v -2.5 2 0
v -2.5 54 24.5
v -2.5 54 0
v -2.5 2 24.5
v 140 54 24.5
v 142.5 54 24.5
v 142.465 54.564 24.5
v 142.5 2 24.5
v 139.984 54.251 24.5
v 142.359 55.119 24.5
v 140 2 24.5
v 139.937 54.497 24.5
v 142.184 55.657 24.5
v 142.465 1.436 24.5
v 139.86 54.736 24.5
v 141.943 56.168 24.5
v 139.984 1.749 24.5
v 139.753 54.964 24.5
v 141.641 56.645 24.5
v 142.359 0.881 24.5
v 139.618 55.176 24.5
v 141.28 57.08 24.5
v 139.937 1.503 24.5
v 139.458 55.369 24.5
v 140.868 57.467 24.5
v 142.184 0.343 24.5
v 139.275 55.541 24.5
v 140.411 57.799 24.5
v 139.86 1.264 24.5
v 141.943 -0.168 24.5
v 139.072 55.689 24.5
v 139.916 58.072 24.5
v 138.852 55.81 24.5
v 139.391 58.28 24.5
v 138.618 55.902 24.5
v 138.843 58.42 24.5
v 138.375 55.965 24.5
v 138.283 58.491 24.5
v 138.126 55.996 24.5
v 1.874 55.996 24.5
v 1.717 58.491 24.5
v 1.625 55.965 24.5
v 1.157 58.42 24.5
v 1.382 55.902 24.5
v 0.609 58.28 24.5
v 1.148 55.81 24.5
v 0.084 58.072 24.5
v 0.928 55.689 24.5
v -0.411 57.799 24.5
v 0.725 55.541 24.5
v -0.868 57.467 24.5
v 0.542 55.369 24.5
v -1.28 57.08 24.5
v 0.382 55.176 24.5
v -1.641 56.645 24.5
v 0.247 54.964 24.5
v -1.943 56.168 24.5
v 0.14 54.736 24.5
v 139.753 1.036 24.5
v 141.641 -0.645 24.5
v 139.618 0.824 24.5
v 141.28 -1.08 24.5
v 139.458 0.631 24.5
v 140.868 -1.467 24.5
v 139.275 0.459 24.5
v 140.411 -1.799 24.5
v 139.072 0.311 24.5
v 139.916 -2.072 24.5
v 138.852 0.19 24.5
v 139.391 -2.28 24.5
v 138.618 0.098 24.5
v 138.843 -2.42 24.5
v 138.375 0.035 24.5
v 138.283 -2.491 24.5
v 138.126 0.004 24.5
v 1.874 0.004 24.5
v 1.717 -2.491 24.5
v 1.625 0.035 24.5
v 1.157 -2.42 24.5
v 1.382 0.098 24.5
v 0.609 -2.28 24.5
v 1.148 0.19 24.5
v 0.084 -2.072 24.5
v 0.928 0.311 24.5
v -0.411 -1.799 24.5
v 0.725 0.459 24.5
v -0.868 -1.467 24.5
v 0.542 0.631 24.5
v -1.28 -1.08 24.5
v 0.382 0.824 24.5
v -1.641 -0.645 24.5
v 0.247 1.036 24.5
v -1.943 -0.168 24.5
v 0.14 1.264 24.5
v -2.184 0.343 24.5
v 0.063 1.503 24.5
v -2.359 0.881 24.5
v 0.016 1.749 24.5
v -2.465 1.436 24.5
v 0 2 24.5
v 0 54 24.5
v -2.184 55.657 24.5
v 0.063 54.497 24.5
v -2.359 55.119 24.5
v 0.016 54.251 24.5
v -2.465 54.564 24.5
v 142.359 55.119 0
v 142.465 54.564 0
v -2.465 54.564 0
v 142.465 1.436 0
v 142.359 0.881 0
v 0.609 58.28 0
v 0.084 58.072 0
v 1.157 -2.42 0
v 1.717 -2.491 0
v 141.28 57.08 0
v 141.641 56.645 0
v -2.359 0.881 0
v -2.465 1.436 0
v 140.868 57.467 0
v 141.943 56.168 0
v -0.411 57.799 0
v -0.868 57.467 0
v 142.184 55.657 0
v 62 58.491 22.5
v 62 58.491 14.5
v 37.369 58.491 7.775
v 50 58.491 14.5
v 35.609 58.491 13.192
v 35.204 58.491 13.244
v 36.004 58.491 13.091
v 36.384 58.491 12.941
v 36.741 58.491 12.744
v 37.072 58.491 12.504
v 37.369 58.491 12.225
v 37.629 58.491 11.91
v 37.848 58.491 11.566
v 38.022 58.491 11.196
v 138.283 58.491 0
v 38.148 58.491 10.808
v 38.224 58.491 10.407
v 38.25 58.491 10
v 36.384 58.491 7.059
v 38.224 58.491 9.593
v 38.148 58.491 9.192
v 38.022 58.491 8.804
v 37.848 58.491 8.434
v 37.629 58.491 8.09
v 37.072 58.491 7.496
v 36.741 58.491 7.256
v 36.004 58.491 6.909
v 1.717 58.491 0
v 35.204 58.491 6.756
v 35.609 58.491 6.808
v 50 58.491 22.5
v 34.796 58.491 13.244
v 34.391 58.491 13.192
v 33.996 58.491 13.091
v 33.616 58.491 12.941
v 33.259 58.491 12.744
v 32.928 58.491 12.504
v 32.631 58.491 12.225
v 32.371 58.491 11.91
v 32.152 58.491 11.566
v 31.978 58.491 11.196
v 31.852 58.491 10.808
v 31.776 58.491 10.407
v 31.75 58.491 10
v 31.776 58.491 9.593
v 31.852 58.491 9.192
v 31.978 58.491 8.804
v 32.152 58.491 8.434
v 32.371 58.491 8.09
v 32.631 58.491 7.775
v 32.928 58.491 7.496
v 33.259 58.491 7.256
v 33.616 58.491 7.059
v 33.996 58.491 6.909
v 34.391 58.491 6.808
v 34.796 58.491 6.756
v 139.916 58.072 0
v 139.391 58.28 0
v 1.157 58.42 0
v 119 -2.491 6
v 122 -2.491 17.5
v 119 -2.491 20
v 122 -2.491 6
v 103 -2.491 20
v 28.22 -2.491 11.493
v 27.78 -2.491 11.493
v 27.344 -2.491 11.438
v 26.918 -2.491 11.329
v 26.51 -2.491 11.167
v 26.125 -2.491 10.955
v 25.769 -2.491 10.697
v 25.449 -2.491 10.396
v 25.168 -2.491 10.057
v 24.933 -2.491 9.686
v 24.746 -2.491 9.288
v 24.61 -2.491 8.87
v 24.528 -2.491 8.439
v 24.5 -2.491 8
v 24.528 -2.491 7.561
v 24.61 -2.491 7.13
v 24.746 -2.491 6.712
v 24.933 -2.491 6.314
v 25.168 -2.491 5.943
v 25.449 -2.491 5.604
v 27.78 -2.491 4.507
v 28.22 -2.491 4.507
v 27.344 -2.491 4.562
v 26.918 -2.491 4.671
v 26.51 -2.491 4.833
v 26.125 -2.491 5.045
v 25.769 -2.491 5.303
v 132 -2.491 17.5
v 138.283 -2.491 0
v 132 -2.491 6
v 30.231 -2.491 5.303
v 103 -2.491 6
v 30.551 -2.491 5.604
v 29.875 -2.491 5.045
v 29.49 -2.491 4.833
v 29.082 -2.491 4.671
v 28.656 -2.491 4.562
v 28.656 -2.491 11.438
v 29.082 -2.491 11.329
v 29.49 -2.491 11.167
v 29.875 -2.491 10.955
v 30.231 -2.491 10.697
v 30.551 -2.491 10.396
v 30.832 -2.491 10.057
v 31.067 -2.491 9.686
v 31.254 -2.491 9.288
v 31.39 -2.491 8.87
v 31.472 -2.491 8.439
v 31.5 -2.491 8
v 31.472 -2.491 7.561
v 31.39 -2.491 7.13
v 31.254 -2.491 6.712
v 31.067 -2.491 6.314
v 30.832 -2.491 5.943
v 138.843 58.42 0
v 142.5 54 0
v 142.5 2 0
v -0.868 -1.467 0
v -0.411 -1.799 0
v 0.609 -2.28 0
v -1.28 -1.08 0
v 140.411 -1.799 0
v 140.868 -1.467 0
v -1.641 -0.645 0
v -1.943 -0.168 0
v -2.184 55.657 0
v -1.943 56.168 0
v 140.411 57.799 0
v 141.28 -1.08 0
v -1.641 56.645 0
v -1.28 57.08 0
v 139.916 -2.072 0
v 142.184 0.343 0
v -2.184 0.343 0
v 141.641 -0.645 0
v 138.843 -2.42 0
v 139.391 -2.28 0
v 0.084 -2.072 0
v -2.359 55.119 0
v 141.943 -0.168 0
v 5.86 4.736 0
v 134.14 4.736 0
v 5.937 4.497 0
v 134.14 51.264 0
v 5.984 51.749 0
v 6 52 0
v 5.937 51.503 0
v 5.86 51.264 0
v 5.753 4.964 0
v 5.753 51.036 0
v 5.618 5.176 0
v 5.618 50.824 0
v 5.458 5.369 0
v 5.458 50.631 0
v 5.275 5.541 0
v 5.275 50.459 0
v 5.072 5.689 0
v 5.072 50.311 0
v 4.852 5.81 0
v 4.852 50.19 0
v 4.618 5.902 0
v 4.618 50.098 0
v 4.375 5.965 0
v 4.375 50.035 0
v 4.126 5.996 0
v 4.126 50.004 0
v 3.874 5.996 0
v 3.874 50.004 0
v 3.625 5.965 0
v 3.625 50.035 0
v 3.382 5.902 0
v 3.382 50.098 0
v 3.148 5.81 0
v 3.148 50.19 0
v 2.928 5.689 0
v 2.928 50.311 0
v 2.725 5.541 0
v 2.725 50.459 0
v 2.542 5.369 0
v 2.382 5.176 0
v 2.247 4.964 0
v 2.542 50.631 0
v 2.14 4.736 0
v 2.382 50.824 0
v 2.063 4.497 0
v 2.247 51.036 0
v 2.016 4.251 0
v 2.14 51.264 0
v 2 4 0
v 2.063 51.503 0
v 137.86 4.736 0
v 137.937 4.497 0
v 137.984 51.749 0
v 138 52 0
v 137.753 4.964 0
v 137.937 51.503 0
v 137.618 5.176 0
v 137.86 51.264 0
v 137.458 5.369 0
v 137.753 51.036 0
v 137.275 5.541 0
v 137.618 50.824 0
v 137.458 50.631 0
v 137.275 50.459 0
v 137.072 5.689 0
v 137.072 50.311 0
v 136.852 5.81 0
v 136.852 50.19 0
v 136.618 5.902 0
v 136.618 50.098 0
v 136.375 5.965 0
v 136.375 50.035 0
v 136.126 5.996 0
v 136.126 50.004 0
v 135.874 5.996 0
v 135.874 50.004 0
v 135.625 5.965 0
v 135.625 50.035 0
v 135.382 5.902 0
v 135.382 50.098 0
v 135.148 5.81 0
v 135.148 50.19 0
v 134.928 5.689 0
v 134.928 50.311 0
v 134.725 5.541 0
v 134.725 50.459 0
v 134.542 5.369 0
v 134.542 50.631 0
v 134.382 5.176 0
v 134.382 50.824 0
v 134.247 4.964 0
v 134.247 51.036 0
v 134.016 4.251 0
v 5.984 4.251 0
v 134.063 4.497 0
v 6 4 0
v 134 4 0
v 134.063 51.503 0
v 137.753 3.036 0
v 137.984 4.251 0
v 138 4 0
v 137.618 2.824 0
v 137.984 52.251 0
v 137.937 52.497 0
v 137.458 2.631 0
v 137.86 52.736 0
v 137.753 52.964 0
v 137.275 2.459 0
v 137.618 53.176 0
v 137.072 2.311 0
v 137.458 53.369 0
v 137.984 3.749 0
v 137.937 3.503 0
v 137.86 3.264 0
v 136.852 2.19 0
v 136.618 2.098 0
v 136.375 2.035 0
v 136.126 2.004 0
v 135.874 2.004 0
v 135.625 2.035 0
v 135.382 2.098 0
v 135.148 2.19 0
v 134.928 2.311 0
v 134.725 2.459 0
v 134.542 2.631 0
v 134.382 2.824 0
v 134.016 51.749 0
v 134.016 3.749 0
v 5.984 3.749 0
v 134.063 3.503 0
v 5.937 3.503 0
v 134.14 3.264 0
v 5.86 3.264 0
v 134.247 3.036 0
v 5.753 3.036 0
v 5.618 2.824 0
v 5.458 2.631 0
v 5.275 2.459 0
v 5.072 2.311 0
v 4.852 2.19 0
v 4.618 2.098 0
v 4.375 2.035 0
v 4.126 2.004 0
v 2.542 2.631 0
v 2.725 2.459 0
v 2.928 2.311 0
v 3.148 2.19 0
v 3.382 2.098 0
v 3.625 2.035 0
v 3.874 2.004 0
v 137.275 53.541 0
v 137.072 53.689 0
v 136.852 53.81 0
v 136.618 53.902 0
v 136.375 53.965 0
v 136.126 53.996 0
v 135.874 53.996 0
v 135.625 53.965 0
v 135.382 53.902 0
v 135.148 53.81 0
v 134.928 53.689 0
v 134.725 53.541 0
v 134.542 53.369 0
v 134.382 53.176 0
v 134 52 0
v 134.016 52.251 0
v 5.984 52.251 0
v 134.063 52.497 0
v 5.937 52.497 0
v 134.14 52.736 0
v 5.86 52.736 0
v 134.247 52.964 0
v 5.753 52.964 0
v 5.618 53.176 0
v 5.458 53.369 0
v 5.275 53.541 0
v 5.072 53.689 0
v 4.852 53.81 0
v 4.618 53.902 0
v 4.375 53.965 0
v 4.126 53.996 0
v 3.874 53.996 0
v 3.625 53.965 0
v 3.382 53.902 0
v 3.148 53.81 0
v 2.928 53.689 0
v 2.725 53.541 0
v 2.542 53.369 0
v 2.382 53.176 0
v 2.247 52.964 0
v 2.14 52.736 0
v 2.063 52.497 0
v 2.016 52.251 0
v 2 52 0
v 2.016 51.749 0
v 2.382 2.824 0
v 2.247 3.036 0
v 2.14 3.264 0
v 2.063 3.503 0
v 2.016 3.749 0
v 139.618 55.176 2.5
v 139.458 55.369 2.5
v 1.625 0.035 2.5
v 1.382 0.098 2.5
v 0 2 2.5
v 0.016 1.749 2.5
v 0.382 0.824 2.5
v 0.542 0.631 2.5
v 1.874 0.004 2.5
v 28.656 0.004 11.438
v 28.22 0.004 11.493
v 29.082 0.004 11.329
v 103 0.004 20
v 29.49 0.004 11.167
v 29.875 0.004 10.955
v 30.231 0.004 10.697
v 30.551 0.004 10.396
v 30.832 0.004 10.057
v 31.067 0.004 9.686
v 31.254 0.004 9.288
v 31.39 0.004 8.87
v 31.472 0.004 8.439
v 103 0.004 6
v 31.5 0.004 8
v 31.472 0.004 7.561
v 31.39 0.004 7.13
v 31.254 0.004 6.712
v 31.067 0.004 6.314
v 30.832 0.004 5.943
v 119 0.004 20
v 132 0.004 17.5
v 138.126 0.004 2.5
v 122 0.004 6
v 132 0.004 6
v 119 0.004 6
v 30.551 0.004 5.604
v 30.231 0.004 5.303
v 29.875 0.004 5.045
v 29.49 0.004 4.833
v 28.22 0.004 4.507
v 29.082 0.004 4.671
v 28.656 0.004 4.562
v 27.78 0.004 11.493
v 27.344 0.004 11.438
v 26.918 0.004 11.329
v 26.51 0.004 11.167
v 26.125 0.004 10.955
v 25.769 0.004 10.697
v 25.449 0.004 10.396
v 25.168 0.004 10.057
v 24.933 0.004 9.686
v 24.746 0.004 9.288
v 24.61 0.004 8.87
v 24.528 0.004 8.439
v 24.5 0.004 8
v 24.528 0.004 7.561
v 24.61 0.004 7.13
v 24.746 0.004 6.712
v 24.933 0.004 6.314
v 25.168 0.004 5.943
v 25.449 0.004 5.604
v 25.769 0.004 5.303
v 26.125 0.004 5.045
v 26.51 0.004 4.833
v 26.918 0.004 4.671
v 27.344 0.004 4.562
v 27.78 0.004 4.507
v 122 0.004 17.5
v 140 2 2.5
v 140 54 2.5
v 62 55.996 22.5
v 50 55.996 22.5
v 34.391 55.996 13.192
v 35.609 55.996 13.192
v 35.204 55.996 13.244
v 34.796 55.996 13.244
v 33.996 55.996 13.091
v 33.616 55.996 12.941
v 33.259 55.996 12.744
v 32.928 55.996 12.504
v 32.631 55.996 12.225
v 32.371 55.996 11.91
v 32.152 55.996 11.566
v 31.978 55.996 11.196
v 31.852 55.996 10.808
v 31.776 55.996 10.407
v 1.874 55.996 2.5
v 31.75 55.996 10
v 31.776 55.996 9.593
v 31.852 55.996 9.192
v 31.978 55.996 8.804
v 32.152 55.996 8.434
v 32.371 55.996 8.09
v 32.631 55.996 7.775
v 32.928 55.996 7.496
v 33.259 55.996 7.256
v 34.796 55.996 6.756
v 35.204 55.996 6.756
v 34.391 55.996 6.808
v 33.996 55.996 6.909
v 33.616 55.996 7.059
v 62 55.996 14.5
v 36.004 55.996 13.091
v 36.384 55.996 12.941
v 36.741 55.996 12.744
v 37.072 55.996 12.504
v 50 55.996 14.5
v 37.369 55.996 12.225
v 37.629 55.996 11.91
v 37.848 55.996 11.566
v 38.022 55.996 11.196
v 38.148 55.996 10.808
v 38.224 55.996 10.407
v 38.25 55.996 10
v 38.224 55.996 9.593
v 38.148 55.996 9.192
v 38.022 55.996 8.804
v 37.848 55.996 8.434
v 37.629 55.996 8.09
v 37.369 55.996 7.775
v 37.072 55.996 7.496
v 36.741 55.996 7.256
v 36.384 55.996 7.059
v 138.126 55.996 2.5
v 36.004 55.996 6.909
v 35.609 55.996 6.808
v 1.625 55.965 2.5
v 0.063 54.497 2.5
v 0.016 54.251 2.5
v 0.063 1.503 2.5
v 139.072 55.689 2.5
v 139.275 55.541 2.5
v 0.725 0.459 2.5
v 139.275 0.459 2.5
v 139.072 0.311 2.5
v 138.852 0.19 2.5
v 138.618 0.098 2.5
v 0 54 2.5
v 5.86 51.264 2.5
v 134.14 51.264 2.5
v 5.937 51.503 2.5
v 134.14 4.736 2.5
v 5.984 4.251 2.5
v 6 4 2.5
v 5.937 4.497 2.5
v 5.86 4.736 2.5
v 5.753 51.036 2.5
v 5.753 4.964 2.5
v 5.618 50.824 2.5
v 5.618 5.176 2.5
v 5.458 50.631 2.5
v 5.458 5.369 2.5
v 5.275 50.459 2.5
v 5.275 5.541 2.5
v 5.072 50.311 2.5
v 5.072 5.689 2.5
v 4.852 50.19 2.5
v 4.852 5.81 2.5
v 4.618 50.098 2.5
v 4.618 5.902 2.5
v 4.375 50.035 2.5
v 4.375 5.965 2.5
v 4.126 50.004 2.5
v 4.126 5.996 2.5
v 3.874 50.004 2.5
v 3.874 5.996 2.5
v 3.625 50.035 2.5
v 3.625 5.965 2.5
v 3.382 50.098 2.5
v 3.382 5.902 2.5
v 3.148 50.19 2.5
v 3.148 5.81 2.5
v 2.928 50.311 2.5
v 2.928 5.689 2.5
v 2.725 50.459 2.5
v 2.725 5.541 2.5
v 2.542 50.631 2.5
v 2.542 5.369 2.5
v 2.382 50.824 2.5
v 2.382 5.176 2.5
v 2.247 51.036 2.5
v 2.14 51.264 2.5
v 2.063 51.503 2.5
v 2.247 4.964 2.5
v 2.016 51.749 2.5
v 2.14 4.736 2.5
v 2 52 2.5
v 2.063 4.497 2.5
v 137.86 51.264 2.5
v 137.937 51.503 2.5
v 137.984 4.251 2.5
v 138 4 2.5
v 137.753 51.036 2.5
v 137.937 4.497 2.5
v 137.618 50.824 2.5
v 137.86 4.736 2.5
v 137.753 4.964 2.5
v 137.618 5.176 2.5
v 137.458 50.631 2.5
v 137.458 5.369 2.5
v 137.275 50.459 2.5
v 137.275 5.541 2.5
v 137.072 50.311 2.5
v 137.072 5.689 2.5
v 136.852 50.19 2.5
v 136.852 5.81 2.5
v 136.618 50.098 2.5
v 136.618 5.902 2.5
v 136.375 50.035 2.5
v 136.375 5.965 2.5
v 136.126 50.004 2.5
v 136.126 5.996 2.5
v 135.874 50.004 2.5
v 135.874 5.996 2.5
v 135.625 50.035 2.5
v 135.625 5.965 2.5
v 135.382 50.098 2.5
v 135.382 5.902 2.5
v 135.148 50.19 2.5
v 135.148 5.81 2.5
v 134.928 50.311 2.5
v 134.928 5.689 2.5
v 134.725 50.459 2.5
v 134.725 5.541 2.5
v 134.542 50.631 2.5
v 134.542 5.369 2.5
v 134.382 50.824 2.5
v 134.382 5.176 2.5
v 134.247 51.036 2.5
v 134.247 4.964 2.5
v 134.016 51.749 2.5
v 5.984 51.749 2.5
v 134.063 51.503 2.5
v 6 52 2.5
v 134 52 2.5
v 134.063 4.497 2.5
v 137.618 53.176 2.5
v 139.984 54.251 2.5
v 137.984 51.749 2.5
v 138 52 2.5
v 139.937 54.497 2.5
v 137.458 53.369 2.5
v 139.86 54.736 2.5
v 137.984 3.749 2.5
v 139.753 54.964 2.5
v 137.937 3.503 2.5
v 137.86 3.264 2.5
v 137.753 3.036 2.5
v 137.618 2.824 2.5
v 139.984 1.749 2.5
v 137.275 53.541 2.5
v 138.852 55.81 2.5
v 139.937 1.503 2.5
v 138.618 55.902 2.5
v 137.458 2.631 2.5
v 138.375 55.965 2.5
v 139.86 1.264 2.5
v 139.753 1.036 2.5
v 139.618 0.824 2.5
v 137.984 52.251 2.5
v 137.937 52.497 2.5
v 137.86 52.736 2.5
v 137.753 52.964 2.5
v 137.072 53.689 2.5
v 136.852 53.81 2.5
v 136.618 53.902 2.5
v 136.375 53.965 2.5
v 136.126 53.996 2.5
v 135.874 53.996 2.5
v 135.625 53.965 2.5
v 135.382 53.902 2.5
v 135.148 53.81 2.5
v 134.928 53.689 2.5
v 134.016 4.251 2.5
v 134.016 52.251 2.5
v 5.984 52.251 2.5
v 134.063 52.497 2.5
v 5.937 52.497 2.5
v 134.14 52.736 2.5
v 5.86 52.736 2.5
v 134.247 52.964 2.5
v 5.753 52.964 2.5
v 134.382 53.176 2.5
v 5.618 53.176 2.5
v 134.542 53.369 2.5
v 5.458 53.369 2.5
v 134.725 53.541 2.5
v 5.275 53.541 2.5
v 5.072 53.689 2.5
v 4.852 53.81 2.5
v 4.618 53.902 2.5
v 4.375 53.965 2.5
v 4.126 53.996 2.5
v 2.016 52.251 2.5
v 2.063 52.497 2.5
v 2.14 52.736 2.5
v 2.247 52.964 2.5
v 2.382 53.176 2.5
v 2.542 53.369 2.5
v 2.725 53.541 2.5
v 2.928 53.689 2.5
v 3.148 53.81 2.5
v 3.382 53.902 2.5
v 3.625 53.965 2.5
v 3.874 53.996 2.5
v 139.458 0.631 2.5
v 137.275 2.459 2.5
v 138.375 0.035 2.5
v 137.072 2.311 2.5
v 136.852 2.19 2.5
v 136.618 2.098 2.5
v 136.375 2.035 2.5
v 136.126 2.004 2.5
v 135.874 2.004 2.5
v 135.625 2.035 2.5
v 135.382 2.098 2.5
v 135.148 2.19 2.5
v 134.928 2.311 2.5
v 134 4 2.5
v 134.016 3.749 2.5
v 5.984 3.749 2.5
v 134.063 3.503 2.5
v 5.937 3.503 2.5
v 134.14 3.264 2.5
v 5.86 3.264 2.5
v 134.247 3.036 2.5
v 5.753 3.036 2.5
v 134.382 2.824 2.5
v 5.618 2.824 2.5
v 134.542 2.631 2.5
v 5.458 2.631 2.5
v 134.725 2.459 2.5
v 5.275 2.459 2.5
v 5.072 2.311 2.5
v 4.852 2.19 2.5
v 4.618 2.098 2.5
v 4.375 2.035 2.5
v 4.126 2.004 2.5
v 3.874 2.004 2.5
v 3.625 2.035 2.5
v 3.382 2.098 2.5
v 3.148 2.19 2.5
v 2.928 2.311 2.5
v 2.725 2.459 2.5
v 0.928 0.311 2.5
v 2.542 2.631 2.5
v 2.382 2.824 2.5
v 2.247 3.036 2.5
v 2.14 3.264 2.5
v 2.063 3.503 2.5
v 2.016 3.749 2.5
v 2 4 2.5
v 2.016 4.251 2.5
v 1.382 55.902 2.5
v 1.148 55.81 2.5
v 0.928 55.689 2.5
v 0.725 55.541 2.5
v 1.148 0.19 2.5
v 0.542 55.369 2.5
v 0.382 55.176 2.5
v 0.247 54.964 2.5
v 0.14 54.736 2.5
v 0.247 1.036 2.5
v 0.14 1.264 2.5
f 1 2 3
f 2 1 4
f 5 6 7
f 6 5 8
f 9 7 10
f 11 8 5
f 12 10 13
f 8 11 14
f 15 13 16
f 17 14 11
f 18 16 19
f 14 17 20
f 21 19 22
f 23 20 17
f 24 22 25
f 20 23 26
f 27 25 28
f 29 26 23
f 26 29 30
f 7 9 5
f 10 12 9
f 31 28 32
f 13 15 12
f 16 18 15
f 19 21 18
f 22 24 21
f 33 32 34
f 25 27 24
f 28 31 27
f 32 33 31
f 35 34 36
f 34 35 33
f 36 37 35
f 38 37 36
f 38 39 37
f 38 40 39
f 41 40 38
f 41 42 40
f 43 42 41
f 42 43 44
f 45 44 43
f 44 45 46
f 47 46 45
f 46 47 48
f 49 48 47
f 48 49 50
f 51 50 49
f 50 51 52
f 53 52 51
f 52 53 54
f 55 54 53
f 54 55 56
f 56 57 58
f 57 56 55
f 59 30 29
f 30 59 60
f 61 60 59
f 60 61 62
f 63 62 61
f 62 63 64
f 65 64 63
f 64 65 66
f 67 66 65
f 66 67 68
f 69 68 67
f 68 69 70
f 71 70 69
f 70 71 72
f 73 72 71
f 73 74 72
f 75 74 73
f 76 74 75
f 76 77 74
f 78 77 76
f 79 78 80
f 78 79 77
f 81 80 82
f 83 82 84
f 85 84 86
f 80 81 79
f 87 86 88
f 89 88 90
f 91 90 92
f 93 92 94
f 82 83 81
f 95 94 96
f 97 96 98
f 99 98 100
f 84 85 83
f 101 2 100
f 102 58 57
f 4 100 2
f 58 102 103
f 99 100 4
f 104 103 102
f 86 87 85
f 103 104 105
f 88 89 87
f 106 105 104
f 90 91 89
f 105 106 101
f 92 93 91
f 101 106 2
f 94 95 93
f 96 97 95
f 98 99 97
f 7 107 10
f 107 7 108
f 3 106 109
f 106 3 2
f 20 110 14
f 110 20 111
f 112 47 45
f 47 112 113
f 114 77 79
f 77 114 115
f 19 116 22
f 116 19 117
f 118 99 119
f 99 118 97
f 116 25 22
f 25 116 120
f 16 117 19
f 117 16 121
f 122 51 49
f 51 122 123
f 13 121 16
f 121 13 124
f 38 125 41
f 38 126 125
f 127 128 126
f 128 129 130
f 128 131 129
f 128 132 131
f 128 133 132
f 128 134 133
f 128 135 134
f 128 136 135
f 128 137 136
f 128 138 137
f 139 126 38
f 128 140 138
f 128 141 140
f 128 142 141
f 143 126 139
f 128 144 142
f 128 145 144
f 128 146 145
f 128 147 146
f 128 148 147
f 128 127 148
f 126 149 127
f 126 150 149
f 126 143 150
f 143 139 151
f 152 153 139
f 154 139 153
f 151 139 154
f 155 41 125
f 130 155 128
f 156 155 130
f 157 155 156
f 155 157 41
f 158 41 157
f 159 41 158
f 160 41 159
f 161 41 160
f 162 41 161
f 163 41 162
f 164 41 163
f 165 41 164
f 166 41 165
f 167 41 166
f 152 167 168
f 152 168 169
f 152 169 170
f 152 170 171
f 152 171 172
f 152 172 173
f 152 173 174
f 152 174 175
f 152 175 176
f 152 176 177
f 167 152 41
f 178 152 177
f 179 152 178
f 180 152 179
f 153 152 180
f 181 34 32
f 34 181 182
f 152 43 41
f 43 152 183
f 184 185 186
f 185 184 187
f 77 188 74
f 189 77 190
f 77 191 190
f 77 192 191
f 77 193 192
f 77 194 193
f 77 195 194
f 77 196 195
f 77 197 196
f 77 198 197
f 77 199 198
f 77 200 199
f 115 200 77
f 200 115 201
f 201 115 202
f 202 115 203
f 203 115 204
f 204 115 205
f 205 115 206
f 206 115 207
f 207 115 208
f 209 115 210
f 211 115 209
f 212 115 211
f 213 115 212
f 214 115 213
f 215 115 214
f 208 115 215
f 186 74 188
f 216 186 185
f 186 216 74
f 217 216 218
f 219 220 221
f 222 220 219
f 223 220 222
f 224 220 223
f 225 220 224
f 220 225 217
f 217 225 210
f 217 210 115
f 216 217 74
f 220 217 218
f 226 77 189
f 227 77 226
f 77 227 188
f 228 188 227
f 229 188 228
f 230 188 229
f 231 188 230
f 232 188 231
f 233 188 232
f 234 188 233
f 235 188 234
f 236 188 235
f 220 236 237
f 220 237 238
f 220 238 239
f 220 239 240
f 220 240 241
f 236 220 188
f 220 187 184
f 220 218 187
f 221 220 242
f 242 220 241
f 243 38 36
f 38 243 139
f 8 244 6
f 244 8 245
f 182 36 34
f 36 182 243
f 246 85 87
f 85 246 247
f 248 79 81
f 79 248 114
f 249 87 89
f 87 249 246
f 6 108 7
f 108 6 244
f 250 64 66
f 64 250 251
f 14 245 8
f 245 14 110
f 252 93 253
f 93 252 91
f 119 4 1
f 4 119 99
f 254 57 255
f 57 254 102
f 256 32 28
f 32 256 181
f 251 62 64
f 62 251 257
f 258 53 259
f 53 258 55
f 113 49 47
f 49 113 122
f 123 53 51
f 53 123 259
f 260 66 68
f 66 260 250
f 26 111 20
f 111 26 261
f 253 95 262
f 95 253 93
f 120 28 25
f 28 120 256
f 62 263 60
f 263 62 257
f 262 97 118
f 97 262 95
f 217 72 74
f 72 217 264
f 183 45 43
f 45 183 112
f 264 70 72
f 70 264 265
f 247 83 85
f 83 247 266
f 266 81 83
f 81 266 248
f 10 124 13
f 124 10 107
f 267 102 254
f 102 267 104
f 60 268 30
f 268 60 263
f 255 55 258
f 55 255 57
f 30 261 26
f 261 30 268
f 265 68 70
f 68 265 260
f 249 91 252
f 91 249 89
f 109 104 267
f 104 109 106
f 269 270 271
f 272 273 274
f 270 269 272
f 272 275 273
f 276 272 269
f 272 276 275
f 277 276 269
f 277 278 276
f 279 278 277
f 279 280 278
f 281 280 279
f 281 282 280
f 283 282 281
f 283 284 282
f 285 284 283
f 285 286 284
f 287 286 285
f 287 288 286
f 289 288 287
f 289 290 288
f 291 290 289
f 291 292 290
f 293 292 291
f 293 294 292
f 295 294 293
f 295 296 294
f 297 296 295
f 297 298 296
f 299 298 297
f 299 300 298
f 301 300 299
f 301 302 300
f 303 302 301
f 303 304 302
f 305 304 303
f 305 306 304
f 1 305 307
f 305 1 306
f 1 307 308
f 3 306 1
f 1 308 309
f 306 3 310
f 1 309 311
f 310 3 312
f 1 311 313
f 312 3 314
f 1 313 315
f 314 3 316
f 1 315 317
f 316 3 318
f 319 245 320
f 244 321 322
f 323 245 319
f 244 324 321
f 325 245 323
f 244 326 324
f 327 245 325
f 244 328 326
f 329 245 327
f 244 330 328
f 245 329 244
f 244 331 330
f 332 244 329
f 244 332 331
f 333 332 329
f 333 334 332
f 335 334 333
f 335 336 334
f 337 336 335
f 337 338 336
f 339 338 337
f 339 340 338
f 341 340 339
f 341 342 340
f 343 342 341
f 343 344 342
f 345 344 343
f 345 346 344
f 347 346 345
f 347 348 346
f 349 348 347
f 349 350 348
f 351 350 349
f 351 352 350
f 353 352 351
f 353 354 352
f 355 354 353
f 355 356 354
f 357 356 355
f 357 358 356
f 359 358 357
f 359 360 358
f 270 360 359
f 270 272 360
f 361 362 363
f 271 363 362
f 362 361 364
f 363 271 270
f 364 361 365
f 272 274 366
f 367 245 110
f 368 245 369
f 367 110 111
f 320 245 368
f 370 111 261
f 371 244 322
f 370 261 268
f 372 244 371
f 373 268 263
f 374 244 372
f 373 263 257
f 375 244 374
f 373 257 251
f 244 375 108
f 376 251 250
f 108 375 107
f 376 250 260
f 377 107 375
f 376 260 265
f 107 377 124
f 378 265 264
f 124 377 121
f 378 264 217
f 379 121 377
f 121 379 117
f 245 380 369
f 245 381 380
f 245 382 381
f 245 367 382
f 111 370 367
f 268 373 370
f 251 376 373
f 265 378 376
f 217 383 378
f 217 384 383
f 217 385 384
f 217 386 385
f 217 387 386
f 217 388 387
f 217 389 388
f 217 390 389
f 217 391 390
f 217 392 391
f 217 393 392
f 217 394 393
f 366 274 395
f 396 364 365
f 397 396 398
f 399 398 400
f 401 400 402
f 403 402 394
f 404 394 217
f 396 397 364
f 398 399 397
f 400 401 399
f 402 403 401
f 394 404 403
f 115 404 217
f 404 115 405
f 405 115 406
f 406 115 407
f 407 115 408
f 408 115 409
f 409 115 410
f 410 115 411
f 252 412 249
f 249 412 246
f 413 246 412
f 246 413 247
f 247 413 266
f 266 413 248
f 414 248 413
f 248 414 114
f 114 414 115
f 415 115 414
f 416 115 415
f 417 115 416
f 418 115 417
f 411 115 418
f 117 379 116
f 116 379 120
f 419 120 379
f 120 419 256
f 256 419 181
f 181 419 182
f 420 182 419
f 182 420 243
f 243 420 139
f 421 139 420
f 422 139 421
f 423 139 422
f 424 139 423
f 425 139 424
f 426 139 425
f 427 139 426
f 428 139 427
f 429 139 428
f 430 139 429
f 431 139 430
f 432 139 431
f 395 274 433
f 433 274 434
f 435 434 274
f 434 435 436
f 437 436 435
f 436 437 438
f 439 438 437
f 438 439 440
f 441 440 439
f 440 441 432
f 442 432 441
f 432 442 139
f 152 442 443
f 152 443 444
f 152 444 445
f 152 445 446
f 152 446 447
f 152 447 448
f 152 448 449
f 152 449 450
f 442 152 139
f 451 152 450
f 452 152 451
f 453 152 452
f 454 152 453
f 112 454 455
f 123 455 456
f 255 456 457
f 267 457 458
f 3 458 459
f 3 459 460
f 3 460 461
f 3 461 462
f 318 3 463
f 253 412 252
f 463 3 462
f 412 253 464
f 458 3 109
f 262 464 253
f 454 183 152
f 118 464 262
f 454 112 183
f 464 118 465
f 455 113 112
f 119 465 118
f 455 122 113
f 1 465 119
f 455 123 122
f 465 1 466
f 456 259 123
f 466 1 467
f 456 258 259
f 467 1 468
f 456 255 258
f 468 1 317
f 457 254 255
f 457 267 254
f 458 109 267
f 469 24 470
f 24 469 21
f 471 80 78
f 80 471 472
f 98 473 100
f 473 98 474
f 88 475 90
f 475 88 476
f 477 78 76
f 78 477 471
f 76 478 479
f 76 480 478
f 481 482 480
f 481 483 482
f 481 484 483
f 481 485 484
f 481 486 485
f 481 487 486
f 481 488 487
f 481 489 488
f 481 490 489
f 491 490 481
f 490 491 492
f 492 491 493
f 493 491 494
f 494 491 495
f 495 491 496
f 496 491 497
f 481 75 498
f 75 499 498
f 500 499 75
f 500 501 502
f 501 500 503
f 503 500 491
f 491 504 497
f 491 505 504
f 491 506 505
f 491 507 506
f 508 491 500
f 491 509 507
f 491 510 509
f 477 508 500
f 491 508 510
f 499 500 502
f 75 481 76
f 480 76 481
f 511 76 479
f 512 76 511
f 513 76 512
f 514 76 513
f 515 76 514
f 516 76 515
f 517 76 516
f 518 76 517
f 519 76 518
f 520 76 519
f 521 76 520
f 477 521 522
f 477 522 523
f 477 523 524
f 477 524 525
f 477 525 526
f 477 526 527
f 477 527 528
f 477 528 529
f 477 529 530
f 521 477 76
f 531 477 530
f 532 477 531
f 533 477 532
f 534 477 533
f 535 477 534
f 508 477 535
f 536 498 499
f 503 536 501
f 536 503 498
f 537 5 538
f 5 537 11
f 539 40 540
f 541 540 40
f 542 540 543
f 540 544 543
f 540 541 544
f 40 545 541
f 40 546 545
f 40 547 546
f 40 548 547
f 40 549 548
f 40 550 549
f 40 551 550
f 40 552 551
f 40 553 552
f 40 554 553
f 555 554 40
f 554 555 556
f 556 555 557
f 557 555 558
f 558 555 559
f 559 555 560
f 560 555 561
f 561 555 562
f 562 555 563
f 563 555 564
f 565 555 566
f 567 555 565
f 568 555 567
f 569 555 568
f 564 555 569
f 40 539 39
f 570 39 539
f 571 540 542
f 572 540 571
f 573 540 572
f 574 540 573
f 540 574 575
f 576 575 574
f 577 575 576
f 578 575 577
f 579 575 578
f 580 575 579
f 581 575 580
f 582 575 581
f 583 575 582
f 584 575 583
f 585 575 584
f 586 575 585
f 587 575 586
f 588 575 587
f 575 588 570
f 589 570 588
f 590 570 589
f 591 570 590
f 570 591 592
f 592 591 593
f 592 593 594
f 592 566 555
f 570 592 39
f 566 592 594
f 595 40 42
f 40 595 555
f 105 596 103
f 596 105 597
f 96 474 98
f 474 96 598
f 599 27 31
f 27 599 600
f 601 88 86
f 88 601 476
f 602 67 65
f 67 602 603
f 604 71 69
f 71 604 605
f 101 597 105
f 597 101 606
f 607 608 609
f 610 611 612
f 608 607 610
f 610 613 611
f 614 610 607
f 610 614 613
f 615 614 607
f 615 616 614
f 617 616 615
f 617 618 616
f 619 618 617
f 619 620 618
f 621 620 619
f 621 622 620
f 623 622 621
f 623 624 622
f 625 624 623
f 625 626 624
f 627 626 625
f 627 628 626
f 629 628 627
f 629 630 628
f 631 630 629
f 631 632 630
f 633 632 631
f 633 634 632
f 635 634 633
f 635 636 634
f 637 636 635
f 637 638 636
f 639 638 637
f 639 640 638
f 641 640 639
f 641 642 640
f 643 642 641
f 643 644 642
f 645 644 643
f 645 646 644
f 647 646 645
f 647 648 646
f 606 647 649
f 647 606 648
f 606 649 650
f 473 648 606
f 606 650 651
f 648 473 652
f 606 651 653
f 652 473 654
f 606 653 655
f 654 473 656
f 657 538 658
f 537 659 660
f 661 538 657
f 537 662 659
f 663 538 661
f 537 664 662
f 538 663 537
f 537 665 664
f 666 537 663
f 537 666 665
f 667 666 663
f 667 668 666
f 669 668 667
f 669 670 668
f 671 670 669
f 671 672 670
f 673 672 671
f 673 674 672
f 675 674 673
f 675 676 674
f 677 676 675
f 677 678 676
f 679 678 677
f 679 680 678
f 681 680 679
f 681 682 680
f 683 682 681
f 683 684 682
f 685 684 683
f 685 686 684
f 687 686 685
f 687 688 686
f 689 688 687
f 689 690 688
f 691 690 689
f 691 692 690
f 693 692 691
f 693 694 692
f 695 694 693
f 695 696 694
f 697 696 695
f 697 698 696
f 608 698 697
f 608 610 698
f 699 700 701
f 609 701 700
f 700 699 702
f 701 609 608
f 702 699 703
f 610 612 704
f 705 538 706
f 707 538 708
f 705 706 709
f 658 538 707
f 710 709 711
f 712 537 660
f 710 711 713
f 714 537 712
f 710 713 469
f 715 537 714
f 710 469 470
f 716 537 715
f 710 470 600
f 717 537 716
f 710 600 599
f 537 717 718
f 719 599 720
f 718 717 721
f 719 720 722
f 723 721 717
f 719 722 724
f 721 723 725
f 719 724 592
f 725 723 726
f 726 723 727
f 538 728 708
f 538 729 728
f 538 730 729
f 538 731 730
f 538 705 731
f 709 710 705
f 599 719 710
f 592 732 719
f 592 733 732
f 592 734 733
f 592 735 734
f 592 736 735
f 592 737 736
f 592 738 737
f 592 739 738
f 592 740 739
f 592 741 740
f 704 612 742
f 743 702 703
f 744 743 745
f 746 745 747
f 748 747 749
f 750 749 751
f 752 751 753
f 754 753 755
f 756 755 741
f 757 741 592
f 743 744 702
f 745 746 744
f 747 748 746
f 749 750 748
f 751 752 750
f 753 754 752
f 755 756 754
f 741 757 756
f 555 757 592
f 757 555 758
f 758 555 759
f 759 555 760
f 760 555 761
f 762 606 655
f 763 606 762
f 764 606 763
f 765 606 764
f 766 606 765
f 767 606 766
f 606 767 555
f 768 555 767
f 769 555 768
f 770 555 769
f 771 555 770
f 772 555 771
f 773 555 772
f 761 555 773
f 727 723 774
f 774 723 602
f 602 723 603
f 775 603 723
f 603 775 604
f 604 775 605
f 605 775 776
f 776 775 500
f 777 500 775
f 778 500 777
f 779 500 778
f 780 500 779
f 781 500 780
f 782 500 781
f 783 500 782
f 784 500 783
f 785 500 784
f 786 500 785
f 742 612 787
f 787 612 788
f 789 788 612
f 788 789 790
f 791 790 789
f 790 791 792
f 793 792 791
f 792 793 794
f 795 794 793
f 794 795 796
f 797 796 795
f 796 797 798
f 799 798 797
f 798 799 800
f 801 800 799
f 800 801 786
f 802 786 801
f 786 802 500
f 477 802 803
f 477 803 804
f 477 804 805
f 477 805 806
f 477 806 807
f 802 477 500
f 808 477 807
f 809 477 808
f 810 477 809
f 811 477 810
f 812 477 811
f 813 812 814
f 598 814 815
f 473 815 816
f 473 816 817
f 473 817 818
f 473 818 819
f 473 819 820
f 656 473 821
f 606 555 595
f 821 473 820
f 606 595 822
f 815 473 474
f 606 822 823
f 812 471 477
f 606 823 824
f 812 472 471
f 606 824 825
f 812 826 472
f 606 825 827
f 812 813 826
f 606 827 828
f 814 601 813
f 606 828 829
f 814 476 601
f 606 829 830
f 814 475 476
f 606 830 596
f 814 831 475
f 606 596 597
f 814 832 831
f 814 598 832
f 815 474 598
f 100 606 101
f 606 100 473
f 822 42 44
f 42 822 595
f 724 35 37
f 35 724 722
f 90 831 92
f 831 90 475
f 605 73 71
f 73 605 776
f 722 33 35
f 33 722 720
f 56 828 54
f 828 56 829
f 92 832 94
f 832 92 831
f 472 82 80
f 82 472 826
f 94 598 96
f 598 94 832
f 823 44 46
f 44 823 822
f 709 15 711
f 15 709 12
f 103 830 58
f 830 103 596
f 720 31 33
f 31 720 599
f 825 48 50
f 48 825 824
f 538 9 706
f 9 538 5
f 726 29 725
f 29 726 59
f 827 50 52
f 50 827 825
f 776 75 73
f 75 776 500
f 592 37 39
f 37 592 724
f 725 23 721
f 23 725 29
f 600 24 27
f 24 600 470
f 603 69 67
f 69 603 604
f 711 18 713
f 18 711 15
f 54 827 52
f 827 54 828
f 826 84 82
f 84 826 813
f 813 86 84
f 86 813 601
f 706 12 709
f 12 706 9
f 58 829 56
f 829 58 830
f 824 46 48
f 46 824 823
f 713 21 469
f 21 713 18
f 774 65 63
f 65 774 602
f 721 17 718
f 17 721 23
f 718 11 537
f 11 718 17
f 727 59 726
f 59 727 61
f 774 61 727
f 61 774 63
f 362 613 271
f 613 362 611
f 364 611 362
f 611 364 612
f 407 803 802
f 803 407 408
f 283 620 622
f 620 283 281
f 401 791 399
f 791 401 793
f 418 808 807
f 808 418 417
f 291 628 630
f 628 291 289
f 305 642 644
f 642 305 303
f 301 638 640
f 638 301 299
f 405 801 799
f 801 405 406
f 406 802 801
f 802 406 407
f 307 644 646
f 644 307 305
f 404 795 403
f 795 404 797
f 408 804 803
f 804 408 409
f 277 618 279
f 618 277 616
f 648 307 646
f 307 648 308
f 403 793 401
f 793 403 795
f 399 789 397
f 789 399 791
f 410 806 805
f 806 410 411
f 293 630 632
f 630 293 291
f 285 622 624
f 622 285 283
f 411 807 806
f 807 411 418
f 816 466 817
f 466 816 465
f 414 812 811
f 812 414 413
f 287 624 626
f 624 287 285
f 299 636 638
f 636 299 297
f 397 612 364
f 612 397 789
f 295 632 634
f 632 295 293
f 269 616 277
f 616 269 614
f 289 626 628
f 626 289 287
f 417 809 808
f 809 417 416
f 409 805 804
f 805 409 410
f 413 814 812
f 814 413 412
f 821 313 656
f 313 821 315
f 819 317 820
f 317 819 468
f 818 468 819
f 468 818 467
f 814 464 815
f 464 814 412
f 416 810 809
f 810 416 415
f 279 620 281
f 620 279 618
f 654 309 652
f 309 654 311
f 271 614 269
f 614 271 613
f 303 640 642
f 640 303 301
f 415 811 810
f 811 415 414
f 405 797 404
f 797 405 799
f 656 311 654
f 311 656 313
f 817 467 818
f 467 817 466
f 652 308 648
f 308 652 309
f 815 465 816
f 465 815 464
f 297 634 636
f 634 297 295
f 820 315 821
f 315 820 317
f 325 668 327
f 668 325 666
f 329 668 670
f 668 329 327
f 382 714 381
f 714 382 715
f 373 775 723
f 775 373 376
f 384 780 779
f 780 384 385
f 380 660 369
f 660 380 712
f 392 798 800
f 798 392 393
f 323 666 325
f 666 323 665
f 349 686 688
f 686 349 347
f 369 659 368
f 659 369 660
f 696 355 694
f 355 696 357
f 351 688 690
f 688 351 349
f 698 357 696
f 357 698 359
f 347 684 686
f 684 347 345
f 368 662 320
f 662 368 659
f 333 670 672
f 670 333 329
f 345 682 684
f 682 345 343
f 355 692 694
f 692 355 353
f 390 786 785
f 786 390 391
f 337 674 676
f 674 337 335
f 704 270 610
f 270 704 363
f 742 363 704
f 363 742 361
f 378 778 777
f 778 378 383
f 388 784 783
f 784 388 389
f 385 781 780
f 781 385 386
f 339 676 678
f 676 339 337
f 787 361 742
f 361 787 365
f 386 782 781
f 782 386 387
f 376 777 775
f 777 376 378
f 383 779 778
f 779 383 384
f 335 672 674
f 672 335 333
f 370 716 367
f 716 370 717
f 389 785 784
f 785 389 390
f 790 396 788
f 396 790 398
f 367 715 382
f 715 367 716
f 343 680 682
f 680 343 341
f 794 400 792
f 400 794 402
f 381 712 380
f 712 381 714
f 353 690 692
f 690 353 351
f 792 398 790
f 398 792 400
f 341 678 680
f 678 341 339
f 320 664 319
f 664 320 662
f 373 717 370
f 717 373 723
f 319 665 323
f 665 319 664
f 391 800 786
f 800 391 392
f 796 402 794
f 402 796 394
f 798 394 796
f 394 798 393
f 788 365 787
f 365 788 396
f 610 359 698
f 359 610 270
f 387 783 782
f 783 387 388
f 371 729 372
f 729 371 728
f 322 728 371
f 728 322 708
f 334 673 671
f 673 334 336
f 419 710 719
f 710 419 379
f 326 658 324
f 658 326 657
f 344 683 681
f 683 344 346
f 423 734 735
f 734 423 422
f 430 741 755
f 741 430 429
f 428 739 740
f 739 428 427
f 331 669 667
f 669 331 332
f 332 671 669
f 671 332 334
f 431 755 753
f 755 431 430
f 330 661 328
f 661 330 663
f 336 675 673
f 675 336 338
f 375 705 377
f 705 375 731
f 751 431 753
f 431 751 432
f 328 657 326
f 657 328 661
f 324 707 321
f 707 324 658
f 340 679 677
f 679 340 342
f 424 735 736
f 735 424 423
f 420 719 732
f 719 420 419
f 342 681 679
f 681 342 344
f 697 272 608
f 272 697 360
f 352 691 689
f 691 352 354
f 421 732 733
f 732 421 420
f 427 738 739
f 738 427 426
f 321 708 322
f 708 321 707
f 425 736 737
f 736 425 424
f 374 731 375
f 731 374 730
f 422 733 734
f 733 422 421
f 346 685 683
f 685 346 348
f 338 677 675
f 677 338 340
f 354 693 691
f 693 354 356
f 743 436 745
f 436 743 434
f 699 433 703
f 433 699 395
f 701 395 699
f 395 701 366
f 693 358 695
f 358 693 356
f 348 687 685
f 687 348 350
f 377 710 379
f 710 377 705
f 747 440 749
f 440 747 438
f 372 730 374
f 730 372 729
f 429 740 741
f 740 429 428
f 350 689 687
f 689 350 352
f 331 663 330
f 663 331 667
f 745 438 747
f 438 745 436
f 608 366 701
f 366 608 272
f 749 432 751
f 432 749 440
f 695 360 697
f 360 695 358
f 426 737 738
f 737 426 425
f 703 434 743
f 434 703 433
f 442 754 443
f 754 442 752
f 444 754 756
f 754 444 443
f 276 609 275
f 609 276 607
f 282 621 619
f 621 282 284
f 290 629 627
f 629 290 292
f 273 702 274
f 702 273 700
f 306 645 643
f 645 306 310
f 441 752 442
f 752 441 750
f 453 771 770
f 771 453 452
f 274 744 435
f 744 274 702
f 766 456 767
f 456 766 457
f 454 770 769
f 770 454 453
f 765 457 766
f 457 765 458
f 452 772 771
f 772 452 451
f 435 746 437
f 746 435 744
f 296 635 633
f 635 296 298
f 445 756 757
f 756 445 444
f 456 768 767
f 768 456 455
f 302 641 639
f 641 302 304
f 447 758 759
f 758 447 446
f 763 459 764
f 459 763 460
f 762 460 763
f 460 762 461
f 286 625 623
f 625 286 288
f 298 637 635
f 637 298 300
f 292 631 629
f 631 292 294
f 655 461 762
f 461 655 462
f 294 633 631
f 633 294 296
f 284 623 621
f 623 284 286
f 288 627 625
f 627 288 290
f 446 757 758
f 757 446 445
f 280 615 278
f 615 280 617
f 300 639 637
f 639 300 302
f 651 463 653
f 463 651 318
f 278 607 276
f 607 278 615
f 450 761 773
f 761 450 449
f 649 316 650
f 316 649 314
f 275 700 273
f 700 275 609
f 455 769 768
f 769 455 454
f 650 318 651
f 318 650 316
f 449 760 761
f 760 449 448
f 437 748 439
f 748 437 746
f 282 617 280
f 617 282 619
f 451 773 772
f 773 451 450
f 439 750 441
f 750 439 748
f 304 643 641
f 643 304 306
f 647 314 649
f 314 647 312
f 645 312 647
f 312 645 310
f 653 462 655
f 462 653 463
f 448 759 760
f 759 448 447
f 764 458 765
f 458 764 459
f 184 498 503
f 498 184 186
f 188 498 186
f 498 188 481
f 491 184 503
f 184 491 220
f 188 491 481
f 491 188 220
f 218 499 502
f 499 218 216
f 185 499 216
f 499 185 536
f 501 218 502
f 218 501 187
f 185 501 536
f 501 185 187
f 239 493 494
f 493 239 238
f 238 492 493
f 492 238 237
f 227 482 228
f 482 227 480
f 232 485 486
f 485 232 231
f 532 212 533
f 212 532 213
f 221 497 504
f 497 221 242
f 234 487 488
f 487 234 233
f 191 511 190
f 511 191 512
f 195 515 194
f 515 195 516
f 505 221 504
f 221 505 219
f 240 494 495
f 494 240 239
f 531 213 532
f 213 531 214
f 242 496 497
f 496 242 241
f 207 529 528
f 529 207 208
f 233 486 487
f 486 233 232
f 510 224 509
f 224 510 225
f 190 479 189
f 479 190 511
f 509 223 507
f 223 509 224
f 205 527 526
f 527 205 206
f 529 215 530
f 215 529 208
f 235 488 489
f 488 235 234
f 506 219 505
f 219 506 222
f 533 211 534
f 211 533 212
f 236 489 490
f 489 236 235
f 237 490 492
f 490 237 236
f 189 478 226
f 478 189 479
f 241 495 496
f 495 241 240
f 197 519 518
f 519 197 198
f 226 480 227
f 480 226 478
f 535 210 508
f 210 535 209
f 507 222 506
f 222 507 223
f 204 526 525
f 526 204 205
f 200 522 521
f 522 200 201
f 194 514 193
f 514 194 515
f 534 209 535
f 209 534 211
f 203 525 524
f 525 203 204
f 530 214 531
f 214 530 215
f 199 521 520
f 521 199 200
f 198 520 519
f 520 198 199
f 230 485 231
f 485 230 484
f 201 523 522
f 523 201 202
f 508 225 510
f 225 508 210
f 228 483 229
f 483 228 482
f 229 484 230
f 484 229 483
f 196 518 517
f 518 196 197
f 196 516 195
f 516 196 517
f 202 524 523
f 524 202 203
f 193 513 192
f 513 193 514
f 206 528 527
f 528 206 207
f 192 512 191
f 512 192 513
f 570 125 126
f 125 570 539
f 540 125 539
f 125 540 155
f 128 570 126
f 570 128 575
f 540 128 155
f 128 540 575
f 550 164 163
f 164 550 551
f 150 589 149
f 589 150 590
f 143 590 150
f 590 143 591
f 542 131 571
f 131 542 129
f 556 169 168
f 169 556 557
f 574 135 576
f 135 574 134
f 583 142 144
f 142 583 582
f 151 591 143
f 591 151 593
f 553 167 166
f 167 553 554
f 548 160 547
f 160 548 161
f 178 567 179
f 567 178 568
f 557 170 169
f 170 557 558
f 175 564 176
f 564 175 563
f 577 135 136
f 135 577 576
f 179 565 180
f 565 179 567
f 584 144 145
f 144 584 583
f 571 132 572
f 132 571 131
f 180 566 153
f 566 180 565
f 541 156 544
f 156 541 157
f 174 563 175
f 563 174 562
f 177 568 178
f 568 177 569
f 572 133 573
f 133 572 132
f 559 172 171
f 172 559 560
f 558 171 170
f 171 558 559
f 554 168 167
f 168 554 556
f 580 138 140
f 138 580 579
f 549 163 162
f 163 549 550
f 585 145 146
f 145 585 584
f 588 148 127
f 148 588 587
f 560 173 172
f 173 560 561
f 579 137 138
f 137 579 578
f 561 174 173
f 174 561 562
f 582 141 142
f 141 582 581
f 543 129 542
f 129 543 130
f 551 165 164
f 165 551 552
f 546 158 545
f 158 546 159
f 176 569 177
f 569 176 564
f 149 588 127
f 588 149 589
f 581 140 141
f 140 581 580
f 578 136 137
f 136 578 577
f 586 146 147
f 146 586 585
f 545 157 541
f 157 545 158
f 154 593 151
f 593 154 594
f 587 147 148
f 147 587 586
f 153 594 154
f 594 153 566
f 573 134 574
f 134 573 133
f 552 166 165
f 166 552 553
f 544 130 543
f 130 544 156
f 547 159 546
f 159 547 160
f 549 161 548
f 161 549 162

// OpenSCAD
$fn = 50;
wall = 2.5; 
radius = 2;
height = 22;
width = 140;
depth = 56; 

difference(){
union(){
difference(){
    hull(){
        translate([radius,radius,0])cylinder(r=radius+wall,h = height+wall);
        translate([width-radius,radius,0])cylinder(r=radius+wall,h = height+wall);
        translate([width-radius,depth-radius,0])cylinder(r=radius+wall,h = height+wall);
        translate([radius,depth-radius,0])cylinder(r=radius+wall,h = height+wall);
    }
    hull(){
        translate([radius,radius,wall])cylinder(r=radius,h = height+wall);
        translate([width-radius,radius,wall])cylinder(r=radius,h= height+wall);
        translate([width-radius,depth-radius,wall])cylinder(r=radius,h = height+wall);
        translate([radius,depth-radius,wall])cylinder(r=radius,h = height+wall);  
    }  
}
// the standof
//        translate([radius,radius,wall])cylinder(r=radius+wall,h = height);
//      translate([width-radius,radius,wall])cylinder(r=radius+wall,h= height);
//       translate([width-radius,depth-radius,wall])cylinder(r=radius+wall,h = height);
//        translate([radius,depth-radius,wall])cylinder(r=radius+wall,h = height); 
}
// and now the holes
//       translate([radius,radius,-0.01])cylinder(r=radius, h= height);
//        translate([width-radius,radius,-0.01])cylinder(r=radius,h= height);
//        translate([width-radius,depth-radius,-0.01])cylinder(r=radius,h = height);
//        translate([radius,depth-radius,-0.01])cylinder(r=radius,h = height); 

        translate([radius+2,radius+2,-2])cylinder(d=4, h= height);
        translate([width-radius-2,radius+2,-2])cylinder(d=4,h= height);
        translate([width-radius-2,depth-radius-2,-2])cylinder(d=4,h = height);
        translate([radius+2,depth-radius-2,-2])cylinder(d=4,h = height); 
//
        translate([103,-3,6])cube([16,10,14]);

translate([122,-3,6])cube([10,10,11.5]);
translate([28,-3,8])rotate([-90,0,0])cylinder(d=7,h=10);
translate([50,50,14.5])cube([12,10,8]);

translate([35,50,10])rotate([-90,0,0])cylinder(d=6.5,h=10);
}
 
